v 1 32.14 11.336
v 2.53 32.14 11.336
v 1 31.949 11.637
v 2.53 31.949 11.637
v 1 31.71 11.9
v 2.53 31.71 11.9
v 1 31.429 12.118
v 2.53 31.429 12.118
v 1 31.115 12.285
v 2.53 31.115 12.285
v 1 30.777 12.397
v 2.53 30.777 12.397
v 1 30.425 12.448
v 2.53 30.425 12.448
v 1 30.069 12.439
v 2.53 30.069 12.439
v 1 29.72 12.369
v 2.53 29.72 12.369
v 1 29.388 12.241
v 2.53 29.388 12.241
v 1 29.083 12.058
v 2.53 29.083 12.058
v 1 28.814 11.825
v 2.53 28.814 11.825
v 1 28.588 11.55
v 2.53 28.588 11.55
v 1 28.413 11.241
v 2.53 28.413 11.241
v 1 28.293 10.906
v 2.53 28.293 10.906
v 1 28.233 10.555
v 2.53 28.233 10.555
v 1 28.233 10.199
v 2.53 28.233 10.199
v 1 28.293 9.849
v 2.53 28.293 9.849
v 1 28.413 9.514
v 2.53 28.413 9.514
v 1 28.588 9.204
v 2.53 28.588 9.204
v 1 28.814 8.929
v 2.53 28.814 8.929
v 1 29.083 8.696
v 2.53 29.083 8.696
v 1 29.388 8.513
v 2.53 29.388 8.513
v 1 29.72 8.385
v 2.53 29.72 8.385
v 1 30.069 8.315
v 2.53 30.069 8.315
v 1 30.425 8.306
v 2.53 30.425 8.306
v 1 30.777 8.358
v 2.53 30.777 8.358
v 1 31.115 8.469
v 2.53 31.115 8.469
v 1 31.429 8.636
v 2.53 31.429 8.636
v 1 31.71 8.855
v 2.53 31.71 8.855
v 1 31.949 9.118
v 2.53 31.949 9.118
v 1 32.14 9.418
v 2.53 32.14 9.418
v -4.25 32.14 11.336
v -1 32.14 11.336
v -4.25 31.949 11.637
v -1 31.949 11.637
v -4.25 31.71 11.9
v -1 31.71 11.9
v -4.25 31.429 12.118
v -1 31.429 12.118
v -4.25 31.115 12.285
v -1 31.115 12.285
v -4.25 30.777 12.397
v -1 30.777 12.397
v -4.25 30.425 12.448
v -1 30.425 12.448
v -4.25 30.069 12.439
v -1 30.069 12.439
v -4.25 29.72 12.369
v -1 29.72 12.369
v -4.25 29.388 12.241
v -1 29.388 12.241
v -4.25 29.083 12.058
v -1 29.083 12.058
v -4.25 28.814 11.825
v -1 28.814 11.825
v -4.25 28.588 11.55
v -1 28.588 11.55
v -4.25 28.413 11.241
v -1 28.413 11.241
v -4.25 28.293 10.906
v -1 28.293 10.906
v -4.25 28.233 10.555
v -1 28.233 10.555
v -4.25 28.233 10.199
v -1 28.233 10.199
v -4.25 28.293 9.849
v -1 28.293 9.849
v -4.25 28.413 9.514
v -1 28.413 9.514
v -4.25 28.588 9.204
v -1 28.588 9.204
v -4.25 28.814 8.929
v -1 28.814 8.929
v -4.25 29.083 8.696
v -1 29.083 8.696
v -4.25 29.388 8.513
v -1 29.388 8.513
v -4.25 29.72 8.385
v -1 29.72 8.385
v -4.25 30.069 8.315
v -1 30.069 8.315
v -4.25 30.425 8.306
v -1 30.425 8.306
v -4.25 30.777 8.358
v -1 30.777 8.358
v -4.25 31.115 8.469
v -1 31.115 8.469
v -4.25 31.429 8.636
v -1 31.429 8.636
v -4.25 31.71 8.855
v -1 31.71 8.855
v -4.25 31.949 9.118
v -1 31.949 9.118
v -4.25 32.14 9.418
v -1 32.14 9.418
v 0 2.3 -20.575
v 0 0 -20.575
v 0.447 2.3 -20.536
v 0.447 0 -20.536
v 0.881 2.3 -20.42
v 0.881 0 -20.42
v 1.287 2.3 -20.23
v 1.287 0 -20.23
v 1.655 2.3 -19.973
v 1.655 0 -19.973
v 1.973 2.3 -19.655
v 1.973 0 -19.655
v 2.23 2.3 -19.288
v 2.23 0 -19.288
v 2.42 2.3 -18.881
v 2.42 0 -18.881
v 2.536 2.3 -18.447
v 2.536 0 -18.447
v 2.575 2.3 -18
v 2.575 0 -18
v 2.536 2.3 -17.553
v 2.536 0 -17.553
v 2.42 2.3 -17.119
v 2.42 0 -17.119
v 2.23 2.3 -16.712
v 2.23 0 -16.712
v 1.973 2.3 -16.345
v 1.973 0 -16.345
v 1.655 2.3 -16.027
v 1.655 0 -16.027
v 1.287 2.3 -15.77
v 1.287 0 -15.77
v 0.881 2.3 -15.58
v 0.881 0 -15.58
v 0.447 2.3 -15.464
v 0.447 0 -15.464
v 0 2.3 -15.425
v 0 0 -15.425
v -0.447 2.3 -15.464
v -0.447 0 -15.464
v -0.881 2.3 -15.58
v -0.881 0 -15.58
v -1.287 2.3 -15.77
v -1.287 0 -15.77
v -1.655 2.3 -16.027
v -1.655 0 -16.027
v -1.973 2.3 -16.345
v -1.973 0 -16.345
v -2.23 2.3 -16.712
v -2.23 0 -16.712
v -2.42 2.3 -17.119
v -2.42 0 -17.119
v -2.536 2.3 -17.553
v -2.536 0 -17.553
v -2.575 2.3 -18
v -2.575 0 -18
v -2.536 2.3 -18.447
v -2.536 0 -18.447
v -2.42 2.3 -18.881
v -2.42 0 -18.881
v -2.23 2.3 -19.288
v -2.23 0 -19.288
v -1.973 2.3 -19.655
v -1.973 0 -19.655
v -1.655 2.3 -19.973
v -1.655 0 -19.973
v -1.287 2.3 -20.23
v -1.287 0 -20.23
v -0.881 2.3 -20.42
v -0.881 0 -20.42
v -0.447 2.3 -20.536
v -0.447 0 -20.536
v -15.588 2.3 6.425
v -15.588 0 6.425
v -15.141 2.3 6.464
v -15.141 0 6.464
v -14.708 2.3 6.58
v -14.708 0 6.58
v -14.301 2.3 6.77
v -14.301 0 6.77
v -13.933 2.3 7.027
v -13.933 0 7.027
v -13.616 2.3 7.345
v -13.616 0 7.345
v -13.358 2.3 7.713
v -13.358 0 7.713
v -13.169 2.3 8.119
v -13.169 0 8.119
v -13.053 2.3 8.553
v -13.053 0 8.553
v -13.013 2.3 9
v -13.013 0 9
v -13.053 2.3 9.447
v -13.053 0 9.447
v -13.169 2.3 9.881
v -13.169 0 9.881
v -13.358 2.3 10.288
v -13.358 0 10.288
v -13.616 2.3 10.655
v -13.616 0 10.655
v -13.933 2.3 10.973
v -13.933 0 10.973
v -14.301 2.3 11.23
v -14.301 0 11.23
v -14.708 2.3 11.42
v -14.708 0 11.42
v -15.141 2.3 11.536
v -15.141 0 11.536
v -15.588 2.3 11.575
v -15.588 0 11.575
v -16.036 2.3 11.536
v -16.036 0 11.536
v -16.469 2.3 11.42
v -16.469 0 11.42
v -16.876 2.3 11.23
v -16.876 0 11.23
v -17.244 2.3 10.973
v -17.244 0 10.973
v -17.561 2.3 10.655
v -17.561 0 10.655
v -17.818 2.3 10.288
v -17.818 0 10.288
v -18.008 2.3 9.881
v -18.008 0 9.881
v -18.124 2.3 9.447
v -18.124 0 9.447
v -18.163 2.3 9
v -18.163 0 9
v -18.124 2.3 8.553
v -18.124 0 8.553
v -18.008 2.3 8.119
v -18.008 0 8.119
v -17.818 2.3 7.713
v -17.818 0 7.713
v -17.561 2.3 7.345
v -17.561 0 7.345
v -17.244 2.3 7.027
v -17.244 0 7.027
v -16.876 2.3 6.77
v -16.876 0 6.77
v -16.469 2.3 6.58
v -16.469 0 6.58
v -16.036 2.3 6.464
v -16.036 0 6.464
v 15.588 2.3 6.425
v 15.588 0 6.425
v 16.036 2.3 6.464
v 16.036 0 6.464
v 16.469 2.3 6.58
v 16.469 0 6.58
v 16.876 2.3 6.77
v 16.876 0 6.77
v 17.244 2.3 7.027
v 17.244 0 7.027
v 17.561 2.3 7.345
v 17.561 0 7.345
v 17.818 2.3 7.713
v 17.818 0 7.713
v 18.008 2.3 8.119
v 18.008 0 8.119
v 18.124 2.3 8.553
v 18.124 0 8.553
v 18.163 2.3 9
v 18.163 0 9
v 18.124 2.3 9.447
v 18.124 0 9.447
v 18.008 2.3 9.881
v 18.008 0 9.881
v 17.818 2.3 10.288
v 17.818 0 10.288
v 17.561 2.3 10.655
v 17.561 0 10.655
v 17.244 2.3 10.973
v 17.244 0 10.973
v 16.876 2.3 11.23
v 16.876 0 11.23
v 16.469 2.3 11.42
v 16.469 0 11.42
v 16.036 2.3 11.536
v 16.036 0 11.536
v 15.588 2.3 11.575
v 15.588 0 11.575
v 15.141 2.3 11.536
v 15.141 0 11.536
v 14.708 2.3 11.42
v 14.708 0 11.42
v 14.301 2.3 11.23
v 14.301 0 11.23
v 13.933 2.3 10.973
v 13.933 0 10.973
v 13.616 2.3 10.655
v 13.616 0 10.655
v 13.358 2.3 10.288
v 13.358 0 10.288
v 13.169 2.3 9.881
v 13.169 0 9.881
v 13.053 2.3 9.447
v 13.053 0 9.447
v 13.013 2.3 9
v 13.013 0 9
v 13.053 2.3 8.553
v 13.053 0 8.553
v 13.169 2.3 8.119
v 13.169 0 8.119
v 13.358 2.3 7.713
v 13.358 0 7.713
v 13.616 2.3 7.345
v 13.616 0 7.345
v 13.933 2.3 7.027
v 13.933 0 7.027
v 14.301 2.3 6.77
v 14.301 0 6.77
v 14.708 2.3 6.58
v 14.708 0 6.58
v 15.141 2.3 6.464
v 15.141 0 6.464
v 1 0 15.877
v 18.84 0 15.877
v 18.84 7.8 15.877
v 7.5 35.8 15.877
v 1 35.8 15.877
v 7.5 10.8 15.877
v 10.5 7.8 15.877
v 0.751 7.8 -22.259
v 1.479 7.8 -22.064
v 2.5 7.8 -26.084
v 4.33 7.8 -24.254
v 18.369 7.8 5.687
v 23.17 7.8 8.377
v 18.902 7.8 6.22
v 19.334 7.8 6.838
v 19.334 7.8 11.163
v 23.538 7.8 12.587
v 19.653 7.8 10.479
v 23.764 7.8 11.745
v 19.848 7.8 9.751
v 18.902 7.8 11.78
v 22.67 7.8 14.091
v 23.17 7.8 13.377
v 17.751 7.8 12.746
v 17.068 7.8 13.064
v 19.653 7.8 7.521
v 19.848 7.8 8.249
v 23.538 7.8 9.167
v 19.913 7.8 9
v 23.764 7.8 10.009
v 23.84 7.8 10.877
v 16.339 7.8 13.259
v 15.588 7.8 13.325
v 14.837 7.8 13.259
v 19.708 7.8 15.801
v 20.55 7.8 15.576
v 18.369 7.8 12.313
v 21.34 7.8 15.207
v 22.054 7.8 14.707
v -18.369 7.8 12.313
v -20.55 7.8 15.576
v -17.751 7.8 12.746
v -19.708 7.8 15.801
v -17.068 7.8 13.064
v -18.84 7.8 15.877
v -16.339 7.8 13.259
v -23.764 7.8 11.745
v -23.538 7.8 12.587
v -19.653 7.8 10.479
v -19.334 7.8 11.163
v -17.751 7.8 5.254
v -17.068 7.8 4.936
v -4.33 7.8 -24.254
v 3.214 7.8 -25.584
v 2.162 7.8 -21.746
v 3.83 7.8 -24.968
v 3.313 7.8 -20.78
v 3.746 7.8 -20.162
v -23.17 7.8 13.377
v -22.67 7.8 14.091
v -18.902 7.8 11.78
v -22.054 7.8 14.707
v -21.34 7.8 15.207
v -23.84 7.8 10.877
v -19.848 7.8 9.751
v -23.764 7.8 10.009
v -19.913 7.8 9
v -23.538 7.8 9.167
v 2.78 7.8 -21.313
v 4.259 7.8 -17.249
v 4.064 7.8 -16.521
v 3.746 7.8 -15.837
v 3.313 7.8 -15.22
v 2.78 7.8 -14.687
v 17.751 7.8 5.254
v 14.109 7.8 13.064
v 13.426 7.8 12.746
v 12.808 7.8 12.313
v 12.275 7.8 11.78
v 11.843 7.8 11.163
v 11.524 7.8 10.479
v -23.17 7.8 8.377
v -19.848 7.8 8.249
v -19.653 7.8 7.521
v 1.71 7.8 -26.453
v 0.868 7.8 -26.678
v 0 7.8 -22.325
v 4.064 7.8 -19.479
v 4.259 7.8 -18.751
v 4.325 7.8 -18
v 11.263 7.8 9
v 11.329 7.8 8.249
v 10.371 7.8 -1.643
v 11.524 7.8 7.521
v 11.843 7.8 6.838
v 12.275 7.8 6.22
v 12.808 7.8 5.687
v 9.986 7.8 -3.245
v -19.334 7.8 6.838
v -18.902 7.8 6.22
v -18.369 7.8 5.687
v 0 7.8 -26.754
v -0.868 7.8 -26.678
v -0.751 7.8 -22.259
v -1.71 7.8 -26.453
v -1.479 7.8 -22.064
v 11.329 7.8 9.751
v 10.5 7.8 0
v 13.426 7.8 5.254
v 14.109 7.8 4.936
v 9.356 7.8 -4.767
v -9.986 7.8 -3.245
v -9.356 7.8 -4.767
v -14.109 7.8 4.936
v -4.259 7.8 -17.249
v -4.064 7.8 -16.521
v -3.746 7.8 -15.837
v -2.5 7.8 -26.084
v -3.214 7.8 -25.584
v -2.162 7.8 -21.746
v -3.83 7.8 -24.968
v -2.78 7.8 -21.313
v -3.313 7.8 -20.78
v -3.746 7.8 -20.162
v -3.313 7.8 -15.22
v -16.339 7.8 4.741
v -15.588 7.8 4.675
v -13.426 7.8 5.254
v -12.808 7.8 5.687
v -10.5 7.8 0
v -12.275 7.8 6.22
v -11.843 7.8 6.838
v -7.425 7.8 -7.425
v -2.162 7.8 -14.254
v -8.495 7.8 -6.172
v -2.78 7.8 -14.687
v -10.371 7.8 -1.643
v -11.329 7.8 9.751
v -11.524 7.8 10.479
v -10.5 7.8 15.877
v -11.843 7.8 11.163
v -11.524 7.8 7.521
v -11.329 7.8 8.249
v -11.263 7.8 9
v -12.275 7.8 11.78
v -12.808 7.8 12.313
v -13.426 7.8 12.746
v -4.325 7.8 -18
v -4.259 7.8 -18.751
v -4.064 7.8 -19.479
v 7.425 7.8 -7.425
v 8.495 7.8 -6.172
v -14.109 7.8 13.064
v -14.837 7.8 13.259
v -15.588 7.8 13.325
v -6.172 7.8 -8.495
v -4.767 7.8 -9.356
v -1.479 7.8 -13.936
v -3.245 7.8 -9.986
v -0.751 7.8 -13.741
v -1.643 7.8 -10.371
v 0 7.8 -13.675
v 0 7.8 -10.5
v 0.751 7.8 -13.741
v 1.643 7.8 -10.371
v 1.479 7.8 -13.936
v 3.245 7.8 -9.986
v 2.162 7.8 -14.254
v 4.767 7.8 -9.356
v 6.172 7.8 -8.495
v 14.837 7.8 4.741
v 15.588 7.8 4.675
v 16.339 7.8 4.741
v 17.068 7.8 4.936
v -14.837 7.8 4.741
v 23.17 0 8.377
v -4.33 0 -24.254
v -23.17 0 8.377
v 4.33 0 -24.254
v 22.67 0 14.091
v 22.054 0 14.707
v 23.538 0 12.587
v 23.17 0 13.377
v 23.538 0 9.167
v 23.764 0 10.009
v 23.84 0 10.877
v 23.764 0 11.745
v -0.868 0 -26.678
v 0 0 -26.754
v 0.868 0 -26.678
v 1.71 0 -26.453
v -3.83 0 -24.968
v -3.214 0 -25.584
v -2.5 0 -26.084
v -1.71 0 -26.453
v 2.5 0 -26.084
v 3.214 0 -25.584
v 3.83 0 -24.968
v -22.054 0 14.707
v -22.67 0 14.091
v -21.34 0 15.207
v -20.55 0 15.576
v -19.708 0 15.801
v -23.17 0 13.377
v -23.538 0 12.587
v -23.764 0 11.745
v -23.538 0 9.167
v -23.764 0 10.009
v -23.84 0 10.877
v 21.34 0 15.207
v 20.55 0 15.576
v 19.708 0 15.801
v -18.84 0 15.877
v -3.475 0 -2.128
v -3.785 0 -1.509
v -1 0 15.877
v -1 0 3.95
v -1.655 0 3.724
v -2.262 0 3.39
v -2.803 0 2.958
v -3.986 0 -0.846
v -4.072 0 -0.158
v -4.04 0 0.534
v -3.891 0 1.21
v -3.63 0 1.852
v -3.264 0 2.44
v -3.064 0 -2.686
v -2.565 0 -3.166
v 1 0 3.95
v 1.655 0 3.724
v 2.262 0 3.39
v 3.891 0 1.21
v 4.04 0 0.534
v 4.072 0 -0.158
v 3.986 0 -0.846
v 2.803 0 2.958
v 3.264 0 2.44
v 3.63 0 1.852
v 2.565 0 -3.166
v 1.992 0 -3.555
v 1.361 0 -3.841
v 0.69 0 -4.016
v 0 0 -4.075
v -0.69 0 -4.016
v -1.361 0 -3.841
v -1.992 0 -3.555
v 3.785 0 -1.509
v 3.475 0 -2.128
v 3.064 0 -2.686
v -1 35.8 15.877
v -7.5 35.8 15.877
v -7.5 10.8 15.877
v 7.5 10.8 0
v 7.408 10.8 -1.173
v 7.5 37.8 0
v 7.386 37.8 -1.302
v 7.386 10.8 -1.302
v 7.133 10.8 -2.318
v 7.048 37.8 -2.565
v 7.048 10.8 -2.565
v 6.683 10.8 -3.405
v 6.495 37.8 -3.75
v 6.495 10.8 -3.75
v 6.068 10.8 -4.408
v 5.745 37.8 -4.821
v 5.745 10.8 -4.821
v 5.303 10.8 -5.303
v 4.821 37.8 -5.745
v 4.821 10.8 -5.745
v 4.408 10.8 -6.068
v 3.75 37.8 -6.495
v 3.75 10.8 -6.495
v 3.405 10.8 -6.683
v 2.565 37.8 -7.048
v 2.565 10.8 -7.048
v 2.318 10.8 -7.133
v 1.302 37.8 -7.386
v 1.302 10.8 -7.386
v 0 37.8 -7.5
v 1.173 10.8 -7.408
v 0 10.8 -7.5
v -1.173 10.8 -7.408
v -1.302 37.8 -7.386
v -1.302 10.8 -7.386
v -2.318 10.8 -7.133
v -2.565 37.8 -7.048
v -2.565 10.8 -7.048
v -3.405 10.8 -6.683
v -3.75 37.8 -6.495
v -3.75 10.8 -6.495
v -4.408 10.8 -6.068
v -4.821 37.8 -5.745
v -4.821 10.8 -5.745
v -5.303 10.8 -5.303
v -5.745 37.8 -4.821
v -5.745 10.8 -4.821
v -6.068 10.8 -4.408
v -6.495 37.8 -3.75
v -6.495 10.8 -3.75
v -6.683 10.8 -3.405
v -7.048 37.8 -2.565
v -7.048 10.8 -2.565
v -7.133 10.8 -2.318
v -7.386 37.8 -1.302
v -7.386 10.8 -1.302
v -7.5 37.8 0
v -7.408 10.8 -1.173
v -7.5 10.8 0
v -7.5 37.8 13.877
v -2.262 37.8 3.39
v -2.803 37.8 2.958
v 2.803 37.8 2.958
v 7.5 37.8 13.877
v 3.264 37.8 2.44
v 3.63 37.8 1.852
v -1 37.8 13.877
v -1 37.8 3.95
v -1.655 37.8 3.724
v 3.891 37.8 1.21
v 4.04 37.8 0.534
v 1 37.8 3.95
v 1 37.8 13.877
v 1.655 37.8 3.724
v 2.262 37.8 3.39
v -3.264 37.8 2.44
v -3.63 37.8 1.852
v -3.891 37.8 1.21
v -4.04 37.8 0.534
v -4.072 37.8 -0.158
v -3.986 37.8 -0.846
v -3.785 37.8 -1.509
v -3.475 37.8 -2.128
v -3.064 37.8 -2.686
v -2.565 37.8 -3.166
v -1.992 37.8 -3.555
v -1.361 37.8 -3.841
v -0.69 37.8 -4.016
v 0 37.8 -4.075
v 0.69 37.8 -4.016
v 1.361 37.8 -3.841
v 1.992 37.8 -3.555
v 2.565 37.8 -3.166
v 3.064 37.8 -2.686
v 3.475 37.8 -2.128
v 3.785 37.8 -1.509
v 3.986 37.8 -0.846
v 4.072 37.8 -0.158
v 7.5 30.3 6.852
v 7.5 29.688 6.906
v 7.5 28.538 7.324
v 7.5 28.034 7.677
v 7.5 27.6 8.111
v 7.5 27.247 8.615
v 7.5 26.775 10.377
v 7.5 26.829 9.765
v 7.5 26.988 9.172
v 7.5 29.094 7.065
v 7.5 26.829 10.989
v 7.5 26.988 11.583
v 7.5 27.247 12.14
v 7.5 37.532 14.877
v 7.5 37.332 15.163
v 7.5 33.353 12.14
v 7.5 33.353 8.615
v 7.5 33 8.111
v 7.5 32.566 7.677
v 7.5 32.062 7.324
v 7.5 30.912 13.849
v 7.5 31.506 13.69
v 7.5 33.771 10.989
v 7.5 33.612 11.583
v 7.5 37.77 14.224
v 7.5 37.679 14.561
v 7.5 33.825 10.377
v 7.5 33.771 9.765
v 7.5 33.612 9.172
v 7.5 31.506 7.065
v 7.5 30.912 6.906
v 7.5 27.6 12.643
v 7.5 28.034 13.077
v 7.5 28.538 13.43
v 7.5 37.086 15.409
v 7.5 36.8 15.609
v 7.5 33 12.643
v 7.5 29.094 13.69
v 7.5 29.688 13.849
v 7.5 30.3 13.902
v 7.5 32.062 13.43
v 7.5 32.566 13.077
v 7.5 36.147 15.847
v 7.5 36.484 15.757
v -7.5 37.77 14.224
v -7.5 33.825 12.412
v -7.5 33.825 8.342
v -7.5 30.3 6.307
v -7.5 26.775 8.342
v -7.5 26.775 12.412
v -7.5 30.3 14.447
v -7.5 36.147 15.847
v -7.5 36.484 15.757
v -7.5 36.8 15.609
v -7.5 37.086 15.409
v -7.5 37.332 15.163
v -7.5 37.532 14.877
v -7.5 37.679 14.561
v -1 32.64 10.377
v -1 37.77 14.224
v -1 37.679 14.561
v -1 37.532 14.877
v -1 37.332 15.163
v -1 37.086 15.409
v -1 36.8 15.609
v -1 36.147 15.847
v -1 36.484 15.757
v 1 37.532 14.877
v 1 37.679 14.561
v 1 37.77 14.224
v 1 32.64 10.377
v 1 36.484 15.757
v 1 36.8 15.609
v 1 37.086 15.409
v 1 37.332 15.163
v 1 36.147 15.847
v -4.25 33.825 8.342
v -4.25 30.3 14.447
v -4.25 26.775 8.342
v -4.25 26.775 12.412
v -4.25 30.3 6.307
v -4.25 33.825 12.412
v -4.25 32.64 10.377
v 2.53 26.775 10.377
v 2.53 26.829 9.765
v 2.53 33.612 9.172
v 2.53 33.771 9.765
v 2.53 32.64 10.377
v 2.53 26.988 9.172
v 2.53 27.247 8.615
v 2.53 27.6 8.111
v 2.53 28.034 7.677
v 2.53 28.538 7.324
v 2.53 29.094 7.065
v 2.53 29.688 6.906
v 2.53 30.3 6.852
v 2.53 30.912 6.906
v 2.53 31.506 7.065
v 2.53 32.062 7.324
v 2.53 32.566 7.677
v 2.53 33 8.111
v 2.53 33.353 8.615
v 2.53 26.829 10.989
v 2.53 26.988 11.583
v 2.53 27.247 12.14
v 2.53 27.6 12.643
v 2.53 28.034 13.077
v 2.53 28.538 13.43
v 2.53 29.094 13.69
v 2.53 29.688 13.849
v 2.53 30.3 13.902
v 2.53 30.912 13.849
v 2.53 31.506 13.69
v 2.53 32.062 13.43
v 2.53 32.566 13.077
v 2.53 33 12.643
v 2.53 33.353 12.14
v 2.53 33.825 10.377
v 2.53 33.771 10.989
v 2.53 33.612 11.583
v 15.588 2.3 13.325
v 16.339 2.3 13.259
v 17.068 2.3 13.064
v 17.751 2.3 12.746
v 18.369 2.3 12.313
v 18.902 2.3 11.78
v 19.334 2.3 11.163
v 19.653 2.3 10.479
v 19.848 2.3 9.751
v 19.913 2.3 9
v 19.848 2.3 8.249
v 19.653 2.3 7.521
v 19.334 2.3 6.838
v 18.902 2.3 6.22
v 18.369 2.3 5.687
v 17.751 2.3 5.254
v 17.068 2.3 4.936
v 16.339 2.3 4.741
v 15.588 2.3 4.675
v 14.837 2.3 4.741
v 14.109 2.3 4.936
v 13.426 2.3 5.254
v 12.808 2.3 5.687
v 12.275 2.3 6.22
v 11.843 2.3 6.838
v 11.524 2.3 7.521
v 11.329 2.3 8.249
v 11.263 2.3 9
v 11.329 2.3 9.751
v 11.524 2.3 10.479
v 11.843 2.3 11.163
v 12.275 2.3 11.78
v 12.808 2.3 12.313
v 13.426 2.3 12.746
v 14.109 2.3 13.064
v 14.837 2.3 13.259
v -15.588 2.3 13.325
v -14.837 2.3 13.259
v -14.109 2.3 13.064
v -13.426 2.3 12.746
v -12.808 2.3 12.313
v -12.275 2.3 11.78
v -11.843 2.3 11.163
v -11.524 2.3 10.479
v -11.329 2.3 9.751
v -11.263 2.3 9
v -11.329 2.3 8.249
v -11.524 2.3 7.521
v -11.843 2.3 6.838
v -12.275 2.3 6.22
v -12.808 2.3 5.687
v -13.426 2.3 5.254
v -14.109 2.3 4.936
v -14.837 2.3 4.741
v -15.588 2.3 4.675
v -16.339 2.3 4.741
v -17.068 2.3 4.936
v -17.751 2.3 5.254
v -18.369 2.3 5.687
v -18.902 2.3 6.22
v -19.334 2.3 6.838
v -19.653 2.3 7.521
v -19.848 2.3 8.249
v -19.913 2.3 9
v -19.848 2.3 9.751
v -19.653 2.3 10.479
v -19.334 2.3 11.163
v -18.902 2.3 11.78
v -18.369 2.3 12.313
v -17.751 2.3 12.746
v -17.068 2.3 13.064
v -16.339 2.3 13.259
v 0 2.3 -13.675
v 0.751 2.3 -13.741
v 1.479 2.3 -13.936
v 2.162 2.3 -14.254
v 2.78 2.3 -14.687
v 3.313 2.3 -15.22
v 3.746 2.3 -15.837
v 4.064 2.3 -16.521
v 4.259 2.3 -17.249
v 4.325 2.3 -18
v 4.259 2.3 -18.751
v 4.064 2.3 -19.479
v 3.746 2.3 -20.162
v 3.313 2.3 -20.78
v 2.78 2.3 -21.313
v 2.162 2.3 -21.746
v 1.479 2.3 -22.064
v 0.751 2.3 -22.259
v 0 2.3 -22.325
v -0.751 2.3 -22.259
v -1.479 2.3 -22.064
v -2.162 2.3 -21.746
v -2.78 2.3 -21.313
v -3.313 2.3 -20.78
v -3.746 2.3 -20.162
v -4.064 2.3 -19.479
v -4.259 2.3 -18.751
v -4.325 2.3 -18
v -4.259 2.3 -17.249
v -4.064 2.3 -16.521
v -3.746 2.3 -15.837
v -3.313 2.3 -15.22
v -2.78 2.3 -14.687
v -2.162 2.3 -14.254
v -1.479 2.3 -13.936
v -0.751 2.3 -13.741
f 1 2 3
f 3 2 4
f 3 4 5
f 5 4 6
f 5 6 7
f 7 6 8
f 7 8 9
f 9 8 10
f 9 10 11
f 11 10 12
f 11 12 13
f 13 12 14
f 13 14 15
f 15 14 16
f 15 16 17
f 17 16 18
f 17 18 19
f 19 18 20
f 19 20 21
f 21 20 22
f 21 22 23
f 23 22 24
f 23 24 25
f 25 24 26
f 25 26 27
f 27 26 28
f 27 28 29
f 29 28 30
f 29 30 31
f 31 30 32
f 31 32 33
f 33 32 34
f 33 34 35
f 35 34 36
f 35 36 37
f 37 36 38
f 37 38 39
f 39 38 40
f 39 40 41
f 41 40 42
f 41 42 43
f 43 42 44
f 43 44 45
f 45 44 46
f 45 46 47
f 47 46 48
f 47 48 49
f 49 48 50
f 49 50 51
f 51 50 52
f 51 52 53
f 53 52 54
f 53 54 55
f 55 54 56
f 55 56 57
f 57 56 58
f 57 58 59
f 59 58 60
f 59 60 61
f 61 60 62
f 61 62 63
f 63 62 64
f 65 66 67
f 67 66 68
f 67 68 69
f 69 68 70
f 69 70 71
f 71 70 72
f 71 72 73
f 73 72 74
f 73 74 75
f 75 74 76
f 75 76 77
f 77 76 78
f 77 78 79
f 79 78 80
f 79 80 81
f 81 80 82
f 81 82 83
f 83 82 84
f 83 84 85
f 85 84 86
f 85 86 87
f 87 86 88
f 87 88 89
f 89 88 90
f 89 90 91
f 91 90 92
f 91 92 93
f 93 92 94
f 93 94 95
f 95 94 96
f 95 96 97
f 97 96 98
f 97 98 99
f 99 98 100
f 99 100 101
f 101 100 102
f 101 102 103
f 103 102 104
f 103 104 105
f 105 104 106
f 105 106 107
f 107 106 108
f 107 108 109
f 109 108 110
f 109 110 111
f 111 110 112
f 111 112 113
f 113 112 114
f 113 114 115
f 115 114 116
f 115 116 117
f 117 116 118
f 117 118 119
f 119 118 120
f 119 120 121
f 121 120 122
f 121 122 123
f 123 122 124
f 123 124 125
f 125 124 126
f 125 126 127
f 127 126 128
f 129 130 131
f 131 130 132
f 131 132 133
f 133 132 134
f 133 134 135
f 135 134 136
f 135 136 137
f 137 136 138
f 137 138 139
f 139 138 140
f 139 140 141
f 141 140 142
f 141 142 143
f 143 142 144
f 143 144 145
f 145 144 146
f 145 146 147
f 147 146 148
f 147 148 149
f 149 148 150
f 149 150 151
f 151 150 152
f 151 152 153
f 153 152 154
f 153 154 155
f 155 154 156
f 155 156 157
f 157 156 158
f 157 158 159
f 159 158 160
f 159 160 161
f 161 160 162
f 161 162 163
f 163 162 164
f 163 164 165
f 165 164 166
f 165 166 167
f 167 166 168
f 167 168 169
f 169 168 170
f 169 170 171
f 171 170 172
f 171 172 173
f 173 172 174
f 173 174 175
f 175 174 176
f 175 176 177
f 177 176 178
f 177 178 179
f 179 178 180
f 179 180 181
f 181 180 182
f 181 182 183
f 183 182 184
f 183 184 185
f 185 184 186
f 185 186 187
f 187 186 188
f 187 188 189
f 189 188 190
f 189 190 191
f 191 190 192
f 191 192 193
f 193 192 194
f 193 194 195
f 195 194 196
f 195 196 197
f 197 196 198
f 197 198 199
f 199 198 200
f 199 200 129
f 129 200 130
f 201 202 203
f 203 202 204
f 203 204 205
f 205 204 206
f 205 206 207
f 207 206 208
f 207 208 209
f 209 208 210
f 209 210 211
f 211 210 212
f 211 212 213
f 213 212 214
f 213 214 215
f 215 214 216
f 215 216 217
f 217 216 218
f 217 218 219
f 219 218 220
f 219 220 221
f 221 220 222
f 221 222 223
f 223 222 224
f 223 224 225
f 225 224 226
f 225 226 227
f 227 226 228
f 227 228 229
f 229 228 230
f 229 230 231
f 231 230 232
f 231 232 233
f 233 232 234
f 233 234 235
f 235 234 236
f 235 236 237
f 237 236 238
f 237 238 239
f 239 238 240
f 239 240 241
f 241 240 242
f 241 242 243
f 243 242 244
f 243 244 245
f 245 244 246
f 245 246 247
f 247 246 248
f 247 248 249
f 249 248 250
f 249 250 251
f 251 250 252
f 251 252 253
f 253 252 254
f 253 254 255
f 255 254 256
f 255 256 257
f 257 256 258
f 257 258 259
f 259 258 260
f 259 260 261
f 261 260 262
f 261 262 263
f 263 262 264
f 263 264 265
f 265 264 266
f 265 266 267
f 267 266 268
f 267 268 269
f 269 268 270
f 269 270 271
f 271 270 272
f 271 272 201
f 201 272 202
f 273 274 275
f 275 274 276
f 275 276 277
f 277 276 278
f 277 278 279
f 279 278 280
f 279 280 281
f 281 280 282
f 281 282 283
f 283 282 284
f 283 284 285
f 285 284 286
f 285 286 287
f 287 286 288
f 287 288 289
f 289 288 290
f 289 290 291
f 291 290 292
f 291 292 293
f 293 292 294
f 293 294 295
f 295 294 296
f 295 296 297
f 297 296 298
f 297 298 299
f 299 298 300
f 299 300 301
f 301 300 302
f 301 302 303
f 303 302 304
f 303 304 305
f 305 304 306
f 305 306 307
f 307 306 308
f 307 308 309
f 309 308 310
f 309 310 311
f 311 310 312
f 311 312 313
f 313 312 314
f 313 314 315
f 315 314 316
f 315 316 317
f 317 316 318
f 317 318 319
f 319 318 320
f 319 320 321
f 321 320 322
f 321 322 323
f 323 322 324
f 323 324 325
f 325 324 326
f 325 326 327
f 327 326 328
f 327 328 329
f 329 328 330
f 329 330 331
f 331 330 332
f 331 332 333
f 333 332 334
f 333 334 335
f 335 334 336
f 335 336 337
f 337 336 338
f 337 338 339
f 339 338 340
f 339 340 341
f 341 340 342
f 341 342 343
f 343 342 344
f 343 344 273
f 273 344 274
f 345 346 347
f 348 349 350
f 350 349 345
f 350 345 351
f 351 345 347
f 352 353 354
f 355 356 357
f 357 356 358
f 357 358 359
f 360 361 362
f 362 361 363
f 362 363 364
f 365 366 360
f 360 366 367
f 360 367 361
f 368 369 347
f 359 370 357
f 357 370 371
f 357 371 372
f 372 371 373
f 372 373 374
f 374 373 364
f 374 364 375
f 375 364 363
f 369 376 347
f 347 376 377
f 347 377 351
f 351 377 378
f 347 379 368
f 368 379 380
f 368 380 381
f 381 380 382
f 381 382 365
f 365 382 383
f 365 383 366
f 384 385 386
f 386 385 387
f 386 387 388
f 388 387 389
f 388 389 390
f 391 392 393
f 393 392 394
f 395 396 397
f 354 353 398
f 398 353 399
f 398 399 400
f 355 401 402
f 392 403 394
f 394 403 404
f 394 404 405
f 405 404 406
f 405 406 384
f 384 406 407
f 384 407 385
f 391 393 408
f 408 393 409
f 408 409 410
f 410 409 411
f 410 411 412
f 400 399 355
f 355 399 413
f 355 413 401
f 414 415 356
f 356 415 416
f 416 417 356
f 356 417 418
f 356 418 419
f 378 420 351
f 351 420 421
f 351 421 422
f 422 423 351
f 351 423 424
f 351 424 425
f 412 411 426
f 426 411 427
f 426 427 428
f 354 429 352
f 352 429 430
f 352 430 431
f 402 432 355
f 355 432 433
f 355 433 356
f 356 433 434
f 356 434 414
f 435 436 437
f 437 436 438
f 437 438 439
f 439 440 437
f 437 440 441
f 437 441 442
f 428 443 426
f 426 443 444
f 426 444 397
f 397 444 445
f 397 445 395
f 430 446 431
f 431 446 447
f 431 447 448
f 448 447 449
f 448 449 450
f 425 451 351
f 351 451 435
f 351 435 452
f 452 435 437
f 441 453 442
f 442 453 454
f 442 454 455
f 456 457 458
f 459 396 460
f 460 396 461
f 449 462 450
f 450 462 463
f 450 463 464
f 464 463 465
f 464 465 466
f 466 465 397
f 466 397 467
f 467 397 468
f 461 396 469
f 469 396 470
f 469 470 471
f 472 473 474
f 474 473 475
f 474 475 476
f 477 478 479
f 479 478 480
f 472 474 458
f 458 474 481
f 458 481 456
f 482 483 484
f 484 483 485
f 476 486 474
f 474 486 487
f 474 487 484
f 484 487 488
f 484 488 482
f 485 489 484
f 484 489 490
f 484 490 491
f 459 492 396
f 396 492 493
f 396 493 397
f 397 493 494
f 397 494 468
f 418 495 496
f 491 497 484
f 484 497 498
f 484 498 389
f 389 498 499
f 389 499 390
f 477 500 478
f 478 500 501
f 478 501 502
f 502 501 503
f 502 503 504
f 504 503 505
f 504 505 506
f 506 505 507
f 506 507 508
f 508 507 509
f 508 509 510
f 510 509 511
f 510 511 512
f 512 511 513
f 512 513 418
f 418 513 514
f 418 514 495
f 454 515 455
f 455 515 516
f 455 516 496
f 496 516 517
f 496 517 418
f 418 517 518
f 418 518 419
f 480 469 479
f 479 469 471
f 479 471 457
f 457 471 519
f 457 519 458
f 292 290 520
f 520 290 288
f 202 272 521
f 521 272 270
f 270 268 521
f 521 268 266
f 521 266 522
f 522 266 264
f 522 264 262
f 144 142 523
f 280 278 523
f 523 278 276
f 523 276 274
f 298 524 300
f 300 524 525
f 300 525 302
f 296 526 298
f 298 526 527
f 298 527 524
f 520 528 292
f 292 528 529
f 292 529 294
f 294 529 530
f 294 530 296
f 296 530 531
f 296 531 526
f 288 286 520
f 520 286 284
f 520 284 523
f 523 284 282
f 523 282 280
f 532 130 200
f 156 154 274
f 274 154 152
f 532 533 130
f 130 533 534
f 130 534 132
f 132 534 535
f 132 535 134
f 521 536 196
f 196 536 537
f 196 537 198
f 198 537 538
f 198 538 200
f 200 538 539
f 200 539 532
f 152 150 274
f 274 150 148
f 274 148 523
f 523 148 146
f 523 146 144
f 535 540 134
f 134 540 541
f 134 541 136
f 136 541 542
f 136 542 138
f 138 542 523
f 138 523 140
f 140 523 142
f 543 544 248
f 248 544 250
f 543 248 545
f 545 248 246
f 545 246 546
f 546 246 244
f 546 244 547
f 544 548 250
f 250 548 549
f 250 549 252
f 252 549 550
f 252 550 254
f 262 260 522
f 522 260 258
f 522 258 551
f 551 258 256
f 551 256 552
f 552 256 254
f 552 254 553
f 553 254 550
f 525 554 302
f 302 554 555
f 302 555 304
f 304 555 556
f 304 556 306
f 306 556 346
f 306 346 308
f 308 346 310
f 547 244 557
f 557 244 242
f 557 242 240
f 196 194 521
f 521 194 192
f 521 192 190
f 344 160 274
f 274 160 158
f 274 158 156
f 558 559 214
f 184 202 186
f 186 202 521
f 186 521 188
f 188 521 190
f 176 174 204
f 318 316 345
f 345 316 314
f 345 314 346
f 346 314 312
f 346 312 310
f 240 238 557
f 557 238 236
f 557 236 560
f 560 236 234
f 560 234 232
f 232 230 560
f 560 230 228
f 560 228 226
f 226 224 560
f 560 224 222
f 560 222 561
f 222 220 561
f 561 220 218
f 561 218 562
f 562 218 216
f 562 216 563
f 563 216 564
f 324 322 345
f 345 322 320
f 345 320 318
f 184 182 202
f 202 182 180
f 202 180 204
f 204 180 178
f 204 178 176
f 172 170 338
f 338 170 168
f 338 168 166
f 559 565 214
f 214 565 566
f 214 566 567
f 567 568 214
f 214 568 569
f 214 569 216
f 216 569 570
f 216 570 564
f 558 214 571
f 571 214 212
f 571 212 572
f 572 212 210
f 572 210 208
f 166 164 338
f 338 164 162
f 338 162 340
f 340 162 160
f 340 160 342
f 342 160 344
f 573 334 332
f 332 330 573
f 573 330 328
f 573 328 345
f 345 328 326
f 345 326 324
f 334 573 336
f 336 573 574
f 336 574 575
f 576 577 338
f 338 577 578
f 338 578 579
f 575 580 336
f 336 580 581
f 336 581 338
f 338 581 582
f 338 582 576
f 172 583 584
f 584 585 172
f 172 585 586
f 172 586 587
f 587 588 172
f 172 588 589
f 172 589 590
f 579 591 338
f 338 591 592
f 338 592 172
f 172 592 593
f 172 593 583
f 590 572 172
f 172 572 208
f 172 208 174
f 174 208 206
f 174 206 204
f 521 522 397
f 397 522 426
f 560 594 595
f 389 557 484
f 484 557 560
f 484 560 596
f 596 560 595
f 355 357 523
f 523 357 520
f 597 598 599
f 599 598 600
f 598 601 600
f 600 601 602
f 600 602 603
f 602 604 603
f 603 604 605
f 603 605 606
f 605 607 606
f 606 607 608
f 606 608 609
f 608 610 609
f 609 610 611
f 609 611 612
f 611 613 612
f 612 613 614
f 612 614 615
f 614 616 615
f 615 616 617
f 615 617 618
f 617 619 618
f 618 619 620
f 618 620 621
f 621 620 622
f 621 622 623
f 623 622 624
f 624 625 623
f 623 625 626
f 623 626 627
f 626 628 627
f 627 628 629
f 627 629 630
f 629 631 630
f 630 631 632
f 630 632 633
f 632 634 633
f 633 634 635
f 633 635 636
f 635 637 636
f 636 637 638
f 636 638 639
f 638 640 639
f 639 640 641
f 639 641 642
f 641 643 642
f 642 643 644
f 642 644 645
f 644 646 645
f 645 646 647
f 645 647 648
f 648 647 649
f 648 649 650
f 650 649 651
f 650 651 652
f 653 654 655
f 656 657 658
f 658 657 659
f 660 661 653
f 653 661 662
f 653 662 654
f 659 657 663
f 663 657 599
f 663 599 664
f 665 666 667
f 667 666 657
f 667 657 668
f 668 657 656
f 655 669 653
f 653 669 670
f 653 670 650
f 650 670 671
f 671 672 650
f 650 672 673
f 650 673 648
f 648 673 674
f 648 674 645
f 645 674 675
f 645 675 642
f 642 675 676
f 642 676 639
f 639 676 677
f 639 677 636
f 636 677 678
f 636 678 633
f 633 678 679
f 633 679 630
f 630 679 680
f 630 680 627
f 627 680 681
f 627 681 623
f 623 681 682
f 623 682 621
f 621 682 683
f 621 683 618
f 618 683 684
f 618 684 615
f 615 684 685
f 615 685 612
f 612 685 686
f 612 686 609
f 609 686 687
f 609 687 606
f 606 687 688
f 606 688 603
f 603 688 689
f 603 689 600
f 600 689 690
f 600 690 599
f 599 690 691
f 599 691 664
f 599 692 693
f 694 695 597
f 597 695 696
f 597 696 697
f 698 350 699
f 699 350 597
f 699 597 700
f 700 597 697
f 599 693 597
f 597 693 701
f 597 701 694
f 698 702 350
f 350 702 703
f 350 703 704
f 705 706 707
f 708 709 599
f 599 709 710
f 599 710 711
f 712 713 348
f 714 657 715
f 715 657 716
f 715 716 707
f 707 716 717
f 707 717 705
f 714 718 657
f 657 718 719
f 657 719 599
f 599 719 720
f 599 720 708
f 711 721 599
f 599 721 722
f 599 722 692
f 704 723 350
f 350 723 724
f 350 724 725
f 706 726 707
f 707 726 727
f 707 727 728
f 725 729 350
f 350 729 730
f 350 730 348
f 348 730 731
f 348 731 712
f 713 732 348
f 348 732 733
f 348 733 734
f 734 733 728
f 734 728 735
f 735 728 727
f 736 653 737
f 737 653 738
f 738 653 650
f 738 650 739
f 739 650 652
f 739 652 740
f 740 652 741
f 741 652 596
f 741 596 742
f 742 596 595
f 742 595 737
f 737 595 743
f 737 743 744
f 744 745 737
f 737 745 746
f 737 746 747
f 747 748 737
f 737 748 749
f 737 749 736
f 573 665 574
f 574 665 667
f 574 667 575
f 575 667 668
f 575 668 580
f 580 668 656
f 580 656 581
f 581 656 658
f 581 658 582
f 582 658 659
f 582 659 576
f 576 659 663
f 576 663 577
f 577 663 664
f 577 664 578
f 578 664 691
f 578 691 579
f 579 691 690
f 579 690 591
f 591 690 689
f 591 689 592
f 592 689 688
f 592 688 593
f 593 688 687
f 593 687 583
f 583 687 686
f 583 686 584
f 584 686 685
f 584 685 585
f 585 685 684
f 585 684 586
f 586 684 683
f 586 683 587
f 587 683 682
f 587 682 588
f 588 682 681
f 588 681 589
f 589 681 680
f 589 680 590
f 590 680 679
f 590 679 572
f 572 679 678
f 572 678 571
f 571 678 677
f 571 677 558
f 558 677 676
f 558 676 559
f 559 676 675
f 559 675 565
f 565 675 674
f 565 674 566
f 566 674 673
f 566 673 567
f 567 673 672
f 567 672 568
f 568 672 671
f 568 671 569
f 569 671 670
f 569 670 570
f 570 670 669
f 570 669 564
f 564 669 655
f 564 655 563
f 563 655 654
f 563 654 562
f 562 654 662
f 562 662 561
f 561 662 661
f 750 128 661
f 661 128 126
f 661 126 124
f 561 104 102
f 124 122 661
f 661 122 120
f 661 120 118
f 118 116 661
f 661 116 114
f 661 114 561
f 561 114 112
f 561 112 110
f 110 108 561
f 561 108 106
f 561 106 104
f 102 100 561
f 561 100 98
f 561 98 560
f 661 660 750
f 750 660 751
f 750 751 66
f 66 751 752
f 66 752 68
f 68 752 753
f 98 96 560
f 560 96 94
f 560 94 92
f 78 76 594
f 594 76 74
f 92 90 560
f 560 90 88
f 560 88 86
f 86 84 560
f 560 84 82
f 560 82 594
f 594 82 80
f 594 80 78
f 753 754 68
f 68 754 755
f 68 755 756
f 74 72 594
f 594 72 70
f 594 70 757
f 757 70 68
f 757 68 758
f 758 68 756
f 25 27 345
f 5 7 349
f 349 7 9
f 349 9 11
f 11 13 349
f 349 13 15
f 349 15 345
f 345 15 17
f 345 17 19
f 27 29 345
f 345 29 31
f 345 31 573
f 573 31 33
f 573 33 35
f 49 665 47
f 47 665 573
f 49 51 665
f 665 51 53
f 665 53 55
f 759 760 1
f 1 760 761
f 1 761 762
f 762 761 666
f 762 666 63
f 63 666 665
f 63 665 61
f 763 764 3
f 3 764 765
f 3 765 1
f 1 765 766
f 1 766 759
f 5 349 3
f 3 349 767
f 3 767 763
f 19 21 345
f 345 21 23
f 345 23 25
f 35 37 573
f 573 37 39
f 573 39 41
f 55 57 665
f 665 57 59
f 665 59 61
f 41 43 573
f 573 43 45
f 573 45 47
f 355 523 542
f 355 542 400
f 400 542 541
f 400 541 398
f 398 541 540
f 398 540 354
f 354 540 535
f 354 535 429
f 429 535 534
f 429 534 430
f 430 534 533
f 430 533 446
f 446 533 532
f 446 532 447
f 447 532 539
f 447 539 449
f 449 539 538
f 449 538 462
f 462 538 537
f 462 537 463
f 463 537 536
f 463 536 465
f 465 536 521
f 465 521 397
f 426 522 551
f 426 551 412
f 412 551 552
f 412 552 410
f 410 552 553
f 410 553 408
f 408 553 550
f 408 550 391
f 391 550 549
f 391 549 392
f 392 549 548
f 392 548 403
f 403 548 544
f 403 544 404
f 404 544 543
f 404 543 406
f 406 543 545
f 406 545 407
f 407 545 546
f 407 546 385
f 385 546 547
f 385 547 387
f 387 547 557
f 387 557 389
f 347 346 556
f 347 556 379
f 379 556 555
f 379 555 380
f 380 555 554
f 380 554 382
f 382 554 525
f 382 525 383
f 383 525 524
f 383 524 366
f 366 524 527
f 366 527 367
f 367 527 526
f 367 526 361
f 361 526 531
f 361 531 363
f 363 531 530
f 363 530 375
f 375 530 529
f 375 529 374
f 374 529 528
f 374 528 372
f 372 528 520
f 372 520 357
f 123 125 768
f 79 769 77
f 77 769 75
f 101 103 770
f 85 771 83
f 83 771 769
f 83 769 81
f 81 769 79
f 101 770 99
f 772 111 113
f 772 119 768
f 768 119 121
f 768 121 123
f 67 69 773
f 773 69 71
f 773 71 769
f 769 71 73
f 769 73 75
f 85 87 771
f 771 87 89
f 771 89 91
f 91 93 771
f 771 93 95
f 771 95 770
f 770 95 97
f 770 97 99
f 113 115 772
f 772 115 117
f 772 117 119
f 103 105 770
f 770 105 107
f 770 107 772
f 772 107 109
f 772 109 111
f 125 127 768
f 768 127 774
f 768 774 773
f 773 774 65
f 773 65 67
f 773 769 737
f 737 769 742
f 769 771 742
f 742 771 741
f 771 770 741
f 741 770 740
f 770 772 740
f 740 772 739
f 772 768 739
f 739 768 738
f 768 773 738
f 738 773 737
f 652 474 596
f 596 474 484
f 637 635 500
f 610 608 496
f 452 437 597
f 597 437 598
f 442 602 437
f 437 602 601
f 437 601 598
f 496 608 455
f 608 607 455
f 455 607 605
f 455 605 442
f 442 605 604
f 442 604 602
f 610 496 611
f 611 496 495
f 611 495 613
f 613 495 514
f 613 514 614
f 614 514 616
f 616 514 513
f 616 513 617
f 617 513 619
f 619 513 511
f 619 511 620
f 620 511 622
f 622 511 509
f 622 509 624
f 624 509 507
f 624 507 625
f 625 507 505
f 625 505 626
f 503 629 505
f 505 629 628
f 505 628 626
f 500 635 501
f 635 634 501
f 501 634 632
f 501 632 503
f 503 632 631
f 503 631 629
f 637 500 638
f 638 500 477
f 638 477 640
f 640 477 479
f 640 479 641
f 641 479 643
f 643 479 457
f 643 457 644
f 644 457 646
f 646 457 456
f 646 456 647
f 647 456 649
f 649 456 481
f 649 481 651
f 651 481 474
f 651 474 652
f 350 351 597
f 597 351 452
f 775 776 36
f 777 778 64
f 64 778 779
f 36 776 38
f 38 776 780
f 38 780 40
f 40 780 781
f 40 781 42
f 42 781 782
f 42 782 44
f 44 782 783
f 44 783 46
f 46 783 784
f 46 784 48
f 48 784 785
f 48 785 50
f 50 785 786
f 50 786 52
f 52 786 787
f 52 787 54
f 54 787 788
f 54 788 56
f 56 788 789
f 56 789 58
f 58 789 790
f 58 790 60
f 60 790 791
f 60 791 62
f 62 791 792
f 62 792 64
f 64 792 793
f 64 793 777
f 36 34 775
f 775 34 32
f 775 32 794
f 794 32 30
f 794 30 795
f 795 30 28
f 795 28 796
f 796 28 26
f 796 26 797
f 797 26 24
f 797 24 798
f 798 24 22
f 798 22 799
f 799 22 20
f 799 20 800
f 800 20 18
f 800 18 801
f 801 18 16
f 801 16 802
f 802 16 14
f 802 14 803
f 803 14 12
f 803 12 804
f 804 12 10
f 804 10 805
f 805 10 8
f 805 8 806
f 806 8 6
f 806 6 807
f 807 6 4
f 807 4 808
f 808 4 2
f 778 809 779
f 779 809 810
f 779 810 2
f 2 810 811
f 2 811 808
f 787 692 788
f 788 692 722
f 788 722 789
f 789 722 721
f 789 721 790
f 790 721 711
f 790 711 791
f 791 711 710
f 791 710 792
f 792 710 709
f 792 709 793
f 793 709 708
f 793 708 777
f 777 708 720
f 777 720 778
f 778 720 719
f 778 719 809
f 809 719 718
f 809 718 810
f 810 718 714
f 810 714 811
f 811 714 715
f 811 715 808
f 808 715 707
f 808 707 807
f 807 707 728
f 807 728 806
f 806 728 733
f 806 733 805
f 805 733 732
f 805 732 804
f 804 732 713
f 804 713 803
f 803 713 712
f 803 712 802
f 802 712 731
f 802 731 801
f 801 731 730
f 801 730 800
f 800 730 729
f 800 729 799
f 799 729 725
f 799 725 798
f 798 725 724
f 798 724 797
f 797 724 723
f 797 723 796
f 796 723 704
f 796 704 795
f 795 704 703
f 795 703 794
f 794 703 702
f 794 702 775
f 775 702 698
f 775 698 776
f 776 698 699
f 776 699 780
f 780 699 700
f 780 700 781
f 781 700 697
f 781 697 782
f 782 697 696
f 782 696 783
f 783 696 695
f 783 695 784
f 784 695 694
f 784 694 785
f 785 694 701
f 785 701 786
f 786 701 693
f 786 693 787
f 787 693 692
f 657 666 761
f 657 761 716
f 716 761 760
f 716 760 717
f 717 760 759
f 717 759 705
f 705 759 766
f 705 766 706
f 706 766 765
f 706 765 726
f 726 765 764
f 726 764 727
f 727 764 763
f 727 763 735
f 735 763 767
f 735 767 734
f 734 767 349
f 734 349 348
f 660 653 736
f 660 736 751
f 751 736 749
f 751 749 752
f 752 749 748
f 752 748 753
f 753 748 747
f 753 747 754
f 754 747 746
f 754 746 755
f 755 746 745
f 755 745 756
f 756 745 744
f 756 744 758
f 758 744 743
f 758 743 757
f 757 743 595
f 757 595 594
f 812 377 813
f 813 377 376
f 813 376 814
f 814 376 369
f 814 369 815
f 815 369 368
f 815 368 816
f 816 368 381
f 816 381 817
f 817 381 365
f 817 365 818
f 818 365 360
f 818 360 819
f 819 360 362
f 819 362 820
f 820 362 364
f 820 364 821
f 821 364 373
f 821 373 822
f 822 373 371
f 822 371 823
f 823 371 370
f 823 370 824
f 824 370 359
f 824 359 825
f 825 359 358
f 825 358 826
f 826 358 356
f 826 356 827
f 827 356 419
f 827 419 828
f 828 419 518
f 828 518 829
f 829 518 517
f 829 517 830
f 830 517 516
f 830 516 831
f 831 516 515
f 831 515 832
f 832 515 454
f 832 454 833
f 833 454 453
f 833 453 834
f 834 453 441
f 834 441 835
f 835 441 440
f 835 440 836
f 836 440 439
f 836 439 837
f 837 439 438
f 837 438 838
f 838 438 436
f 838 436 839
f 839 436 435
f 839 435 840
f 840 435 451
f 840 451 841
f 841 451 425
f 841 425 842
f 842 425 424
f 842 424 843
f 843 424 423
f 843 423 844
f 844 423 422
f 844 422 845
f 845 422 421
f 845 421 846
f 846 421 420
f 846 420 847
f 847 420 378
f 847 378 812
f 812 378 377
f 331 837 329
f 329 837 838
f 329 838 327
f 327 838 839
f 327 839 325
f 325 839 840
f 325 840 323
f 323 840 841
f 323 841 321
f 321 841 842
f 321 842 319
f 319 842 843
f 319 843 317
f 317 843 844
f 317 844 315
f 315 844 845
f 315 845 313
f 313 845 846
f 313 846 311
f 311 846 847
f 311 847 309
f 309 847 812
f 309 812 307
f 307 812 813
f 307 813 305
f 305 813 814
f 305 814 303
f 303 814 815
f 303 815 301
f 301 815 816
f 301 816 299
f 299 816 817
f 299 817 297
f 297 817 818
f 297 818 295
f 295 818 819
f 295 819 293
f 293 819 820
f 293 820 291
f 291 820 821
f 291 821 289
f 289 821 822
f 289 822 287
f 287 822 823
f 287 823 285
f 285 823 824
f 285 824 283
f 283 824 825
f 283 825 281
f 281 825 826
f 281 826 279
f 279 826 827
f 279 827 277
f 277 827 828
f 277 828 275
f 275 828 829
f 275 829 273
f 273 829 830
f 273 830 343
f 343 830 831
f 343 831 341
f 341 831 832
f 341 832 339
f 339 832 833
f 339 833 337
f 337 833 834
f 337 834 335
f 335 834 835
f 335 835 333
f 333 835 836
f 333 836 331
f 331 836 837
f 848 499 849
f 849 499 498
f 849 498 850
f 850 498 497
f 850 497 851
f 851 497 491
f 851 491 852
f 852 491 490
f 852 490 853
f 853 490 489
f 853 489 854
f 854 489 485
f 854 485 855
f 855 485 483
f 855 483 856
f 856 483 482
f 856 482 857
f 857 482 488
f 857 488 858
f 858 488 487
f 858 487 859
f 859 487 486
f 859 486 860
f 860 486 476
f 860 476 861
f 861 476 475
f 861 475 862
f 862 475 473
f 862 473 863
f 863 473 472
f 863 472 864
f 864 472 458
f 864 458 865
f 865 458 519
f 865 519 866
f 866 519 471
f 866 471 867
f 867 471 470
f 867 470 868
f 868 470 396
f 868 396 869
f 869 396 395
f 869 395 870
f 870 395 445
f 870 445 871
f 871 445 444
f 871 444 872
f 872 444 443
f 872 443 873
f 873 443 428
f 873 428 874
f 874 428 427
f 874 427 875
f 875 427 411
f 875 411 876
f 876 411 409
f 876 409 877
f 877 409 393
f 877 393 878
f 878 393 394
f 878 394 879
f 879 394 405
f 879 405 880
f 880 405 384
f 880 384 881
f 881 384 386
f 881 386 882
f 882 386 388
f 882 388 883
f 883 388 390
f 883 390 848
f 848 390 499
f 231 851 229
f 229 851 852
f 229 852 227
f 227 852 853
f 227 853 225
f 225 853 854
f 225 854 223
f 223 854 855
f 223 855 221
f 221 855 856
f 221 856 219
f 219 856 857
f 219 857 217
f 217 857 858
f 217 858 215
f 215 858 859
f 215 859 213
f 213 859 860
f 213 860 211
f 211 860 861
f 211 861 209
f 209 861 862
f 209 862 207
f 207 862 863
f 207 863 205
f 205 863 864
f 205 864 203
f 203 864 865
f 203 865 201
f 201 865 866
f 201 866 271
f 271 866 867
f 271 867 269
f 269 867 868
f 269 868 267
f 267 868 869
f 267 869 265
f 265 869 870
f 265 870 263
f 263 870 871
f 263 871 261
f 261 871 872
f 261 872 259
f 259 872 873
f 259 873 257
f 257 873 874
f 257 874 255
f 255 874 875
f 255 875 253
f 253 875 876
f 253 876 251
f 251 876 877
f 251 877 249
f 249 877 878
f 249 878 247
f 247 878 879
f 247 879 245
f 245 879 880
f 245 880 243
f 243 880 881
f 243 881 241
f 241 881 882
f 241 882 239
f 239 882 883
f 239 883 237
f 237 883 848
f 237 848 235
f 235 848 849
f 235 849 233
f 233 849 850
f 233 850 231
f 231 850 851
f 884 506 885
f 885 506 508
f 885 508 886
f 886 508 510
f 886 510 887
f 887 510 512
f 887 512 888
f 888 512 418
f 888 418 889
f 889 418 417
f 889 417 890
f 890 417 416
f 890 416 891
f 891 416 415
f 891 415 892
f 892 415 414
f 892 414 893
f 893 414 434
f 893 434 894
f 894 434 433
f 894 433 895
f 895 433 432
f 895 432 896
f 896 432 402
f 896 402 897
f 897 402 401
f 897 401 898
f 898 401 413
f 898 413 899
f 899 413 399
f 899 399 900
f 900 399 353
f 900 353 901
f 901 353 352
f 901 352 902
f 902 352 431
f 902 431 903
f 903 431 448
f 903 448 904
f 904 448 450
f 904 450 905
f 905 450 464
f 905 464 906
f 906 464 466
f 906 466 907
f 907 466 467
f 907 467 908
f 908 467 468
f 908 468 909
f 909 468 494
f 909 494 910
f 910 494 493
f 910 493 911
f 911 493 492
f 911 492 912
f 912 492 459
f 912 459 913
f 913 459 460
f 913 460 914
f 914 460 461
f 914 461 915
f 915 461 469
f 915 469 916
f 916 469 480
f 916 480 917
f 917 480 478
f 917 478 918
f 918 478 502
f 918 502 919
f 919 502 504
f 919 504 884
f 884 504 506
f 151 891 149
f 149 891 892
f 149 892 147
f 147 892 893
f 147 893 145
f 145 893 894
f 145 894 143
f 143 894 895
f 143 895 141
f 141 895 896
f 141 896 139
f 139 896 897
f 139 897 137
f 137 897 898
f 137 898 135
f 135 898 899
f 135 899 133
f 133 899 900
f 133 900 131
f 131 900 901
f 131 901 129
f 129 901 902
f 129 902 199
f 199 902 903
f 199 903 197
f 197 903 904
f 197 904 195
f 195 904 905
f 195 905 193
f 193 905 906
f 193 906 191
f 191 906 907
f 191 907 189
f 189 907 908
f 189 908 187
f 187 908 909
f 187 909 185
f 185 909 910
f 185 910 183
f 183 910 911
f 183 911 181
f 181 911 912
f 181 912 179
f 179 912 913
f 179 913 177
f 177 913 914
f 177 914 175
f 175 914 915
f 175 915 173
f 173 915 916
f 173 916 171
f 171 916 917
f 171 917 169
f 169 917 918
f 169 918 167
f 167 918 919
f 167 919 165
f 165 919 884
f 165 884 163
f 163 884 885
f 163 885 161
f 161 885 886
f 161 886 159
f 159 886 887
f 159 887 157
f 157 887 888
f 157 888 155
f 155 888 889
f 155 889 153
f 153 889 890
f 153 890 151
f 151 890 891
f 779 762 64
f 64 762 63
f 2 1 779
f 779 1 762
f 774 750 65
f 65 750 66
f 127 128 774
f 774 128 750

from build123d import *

# Parameters (mm, degrees)
ESQUISSE5_R              = 2.6
BOSS_EXTRU_2_DEPTH       = 7.8
ESQUISSE6_R              = 7.5
BOSS_EXTRU_3_DEPTH       = 30
BOSS_EXTRU_6_START       = -30
BOSS_EXTRU_6_DEPTH       = 30
ESQUISSE14_R             = 4.075
ENL_V_MAT_EXTRU_4_DEPTH  = 57.510382527
ENL_V_MAT_EXTRU_5_DEPTH  = 57.510382527
CONG_2_R                 = 5
ESQUISSE17_R             = 2.075
ENL_V_MAT_EXTRU_6_DEPTH  = 56.917889465
ENL_V_MAT_EXTRU_7_DEPTH  = 3.25
CHANFREIN1_SIZE          = 3
ESQUISSE20_R             = 3.525
ENL_V_MAT_EXTRU_9_DEPTH  = 4.97
CONG_3_R                 = 2
ESQUISSE19_R             = 4.325
ENL_V_MAT_EXTRU_8_DEPTH  = 5.5
ENL_V_MAT_EXTRU_10_DEPTH = 54.291595842


with BuildPart() as part:
    # Esquisse5 → Boss.-Extru.2 (new body)
    with BuildSketch(Plane(origin=(0, 0, 0), x_dir=(1, 0, 0), z_dir=(0, 1, 0))):
        Polygon((-27.5, -15.877132403), (27.5, -15.877132403), (0, 31.754264805), align=None)
        with Locations(Location((0, 18, 0), (0, 0, 270))):
            Circle(ESQUISSE5_R, mode=Mode.SUBTRACT)
        with Locations(Location((-15.588457268, -9, 0), (0, 0, 270))):
            Circle(ESQUISSE5_R, mode=Mode.SUBTRACT)
        with Locations(Location((15.588457268, -9, 0), (0, 0, 270))):
            Circle(ESQUISSE5_R, mode=Mode.SUBTRACT)
    extrude(amount=BOSS_EXTRU_2_DEPTH)

    # Esquisse6 → Boss.-Extru.3 (add)
    with BuildSketch(Plane(origin=(0, 7.8, 0), x_dir=(1, 0, 0), z_dir=(0, 1, 0))):
        with Locations(Location((0, 0, 0), (0, 0, 270))):
            Circle(ESQUISSE6_R)
    extrude(amount=BOSS_EXTRU_3_DEPTH)

    # Esquisse13 → Boss.-Extru.6 (add)
    with BuildSketch(Plane(origin=(0, 37.8, 0), x_dir=(1, 0, 0), z_dir=(0, 1, 0)).offset(BOSS_EXTRU_6_START)):
        with BuildLine():
            Line((-7.5, 0), (-7.5, -15.877132403))
            Line((-7.5, -15.877132403), (7.5, -15.877132403))
            Line((7.5, -15.877132403), (7.5, 0))
            ThreePointArc((7.5, 0), (0, -7.5), (-7.5, 0))
        make_face()
    extrude(amount=BOSS_EXTRU_6_DEPTH)

    # Esquisse14 → Enlèv. mat.-Extru.4 (cut, through all)
    with BuildSketch(Plane(origin=(0, 37.8, 0), x_dir=(1, 0, 0), z_dir=(0, 1, 0))):
        with Locations(Location((0, 0, 0), (0, 0, 270))):
            Circle(ESQUISSE14_R)
    extrude(amount=-ENL_V_MAT_EXTRU_4_DEPTH, mode=Mode.SUBTRACT)

    # Esquisse15 → Enlèv. mat.-Extru.5 (cut, through all)
    with BuildSketch(Plane(origin=(0, 37.8, 0), x_dir=(1, 0, 0), z_dir=(0, 1, 0))):
        with BuildLine():
            Line((-1, -3.95039555), (-1, -15.877132403))
            Line((-1, -15.877132403), (1, -15.877132403))
            Line((1, -15.877132403), (1, -3.95039555))
            ThreePointArc((1, -3.95039555), (0, -4.075), (-1, -3.95039555))
        make_face()
    extrude(amount=-ENL_V_MAT_EXTRU_5_DEPTH, mode=Mode.SUBTRACT)

    # Congé2
    cong_2_edges = [part.edges().sort_by_distance(p)[0] for p in [
        (0, 3.9, -31.754264805),
        (27.5, 3.9, 15.877132403),
        (-27.5, 3.9, 15.877132403),
    ]]
    fillet(cong_2_edges, radius=CONG_2_R)

    # Esquisse17 → Enlèv. mat.-Extru.6 (cut, through all)
    with BuildSketch(Plane(origin=(7.5, 0, 0), x_dir=(0, 0, -1), z_dir=(1, 0, 0))):
        with Locations((-10.377132403, 30.3)):
            Circle(ESQUISSE17_R)
    extrude(amount=-ENL_V_MAT_EXTRU_6_DEPTH, mode=Mode.SUBTRACT)

    # Esquisse18 → Enlèv. mat.-Extru.7 (cut)
    with BuildSketch(Plane.ZY.offset(7.5)):
        Polygon((12.412292102, 33.825), (8.341972704, 33.825), (6.306813005, 30.3), (8.341972704, 26.775), (12.412292102, 26.775), (14.447451801, 30.3), align=None)
    extrude(amount=-ENL_V_MAT_EXTRU_7_DEPTH, mode=Mode.SUBTRACT)

    # Chanfrein1
    chanfrein1_edges = [part.edges().sort_by_distance(p)[0] for p in [
        (0, 7.8, -7.5),
        (7.5, 7.8, 7.938566201),
        (-7.5, 7.8, 7.938566201),
    ]]
    chamfer(chanfrein1_edges, length=CHANFREIN1_SIZE)

    # Esquisse20 → Enlèv. mat.-Extru.9 (cut)
    with BuildSketch(Plane(origin=(7.5, 0, 0), x_dir=(0, 0, -1), z_dir=(1, 0, 0))):
        with Locations((-10.377132403, 30.3)):
            Circle(ESQUISSE20_R)
    extrude(amount=-ENL_V_MAT_EXTRU_9_DEPTH, mode=Mode.SUBTRACT)

    # Congé3
    cong_3_edges = [part.edges().sort_by_distance(p)[0] for p in [
        (-4.25, 37.8, 15.877132403),
        (4.25, 37.8, 15.877132403),
    ]]
    fillet(cong_3_edges, radius=CONG_3_R)

    # Esquisse19 → Enlèv. mat.-Extru.8 (cut)
    with BuildSketch(Plane(origin=(0, 7.8, 0), x_dir=(1, 0, 0), z_dir=(0, 1, 0))):
        with Locations(Location((0, 18, 0), (0, 0, 270))):
            Circle(ESQUISSE19_R)
        with Locations(Location((-15.588457268, -9, 0), (0, 0, 270))):
            Circle(ESQUISSE19_R)
        with Locations(Location((15.588457268, -9, 0), (0, 0, 270))):
            Circle(ESQUISSE19_R)
    extrude(amount=-ENL_V_MAT_EXTRU_8_DEPTH, mode=Mode.SUBTRACT)

    # Esquisse21 → Enlèv. mat.-Extru.10 (cut, through all)
    with BuildSketch(Plane(origin=(2.53, 0, 0), x_dir=(0, 0, -1), z_dir=(1, 0, 0))):
        Polygon((-11.336300266, 32.140005981), (-10.377132403, 32.640005981), (-9.417964539, 32.140005981), align=None)
    extrude(amount=-ENL_V_MAT_EXTRU_10_DEPTH, mode=Mode.SUBTRACT)


solid = part.part
